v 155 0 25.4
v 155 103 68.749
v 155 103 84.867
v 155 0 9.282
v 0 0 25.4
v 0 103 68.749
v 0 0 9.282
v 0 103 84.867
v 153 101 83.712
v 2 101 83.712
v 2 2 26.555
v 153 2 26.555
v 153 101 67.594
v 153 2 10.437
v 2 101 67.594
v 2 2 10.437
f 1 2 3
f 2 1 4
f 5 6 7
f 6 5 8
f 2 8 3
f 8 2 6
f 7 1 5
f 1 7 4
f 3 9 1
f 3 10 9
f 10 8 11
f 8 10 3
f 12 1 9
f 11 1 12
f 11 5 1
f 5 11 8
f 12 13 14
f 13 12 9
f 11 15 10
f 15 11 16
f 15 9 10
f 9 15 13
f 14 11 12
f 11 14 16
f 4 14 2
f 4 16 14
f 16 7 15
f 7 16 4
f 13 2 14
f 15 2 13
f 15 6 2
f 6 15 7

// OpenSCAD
/*
translate([0, 0, 25.5]) {
    rotate([30, 0, 0]) {
    difference() {
    cube([165, 127, 1]);
    translate([18, 50, -1]) {
        cube([85, 60, 4]);
    }
    translate([18, 50, -1]) {
        cube([85, 60, 4]);
    }
    translate([20, 25, 0]) {
        cylinder(6, 4, 4, true);
    }
    translate([57, 25, 0]) {
        cylinder(6, 4, 4, true);
    }
    translate([94, 25, 0]) {
        cylinder(6, 4, 4, true);
    }
    translate([131, 25, 0]) {
        cylinder(6, 4, 4, true);
    }
    translate([131, 62, 0]) {
        cylinder(6, 4, 4, true);
    }
    
        translate([131, 97, 0]) {
        cylinder(6, 4, 4, true);
    }
}
}
}
*/

difference() {
cube([155, 103, 120]);
translate([-10, 0, 25.4]) {
    rotate([30, 0, 0]) {
        cube([200, 150, 100]);
    }
}
translate([2, 2, 2]) {
cube([151, 99, 120]);
}
translate([-2, 0, -60]) {
rotate([30, 0, 0]) {
        cube([200, 500, 60]);
    }
}
}
